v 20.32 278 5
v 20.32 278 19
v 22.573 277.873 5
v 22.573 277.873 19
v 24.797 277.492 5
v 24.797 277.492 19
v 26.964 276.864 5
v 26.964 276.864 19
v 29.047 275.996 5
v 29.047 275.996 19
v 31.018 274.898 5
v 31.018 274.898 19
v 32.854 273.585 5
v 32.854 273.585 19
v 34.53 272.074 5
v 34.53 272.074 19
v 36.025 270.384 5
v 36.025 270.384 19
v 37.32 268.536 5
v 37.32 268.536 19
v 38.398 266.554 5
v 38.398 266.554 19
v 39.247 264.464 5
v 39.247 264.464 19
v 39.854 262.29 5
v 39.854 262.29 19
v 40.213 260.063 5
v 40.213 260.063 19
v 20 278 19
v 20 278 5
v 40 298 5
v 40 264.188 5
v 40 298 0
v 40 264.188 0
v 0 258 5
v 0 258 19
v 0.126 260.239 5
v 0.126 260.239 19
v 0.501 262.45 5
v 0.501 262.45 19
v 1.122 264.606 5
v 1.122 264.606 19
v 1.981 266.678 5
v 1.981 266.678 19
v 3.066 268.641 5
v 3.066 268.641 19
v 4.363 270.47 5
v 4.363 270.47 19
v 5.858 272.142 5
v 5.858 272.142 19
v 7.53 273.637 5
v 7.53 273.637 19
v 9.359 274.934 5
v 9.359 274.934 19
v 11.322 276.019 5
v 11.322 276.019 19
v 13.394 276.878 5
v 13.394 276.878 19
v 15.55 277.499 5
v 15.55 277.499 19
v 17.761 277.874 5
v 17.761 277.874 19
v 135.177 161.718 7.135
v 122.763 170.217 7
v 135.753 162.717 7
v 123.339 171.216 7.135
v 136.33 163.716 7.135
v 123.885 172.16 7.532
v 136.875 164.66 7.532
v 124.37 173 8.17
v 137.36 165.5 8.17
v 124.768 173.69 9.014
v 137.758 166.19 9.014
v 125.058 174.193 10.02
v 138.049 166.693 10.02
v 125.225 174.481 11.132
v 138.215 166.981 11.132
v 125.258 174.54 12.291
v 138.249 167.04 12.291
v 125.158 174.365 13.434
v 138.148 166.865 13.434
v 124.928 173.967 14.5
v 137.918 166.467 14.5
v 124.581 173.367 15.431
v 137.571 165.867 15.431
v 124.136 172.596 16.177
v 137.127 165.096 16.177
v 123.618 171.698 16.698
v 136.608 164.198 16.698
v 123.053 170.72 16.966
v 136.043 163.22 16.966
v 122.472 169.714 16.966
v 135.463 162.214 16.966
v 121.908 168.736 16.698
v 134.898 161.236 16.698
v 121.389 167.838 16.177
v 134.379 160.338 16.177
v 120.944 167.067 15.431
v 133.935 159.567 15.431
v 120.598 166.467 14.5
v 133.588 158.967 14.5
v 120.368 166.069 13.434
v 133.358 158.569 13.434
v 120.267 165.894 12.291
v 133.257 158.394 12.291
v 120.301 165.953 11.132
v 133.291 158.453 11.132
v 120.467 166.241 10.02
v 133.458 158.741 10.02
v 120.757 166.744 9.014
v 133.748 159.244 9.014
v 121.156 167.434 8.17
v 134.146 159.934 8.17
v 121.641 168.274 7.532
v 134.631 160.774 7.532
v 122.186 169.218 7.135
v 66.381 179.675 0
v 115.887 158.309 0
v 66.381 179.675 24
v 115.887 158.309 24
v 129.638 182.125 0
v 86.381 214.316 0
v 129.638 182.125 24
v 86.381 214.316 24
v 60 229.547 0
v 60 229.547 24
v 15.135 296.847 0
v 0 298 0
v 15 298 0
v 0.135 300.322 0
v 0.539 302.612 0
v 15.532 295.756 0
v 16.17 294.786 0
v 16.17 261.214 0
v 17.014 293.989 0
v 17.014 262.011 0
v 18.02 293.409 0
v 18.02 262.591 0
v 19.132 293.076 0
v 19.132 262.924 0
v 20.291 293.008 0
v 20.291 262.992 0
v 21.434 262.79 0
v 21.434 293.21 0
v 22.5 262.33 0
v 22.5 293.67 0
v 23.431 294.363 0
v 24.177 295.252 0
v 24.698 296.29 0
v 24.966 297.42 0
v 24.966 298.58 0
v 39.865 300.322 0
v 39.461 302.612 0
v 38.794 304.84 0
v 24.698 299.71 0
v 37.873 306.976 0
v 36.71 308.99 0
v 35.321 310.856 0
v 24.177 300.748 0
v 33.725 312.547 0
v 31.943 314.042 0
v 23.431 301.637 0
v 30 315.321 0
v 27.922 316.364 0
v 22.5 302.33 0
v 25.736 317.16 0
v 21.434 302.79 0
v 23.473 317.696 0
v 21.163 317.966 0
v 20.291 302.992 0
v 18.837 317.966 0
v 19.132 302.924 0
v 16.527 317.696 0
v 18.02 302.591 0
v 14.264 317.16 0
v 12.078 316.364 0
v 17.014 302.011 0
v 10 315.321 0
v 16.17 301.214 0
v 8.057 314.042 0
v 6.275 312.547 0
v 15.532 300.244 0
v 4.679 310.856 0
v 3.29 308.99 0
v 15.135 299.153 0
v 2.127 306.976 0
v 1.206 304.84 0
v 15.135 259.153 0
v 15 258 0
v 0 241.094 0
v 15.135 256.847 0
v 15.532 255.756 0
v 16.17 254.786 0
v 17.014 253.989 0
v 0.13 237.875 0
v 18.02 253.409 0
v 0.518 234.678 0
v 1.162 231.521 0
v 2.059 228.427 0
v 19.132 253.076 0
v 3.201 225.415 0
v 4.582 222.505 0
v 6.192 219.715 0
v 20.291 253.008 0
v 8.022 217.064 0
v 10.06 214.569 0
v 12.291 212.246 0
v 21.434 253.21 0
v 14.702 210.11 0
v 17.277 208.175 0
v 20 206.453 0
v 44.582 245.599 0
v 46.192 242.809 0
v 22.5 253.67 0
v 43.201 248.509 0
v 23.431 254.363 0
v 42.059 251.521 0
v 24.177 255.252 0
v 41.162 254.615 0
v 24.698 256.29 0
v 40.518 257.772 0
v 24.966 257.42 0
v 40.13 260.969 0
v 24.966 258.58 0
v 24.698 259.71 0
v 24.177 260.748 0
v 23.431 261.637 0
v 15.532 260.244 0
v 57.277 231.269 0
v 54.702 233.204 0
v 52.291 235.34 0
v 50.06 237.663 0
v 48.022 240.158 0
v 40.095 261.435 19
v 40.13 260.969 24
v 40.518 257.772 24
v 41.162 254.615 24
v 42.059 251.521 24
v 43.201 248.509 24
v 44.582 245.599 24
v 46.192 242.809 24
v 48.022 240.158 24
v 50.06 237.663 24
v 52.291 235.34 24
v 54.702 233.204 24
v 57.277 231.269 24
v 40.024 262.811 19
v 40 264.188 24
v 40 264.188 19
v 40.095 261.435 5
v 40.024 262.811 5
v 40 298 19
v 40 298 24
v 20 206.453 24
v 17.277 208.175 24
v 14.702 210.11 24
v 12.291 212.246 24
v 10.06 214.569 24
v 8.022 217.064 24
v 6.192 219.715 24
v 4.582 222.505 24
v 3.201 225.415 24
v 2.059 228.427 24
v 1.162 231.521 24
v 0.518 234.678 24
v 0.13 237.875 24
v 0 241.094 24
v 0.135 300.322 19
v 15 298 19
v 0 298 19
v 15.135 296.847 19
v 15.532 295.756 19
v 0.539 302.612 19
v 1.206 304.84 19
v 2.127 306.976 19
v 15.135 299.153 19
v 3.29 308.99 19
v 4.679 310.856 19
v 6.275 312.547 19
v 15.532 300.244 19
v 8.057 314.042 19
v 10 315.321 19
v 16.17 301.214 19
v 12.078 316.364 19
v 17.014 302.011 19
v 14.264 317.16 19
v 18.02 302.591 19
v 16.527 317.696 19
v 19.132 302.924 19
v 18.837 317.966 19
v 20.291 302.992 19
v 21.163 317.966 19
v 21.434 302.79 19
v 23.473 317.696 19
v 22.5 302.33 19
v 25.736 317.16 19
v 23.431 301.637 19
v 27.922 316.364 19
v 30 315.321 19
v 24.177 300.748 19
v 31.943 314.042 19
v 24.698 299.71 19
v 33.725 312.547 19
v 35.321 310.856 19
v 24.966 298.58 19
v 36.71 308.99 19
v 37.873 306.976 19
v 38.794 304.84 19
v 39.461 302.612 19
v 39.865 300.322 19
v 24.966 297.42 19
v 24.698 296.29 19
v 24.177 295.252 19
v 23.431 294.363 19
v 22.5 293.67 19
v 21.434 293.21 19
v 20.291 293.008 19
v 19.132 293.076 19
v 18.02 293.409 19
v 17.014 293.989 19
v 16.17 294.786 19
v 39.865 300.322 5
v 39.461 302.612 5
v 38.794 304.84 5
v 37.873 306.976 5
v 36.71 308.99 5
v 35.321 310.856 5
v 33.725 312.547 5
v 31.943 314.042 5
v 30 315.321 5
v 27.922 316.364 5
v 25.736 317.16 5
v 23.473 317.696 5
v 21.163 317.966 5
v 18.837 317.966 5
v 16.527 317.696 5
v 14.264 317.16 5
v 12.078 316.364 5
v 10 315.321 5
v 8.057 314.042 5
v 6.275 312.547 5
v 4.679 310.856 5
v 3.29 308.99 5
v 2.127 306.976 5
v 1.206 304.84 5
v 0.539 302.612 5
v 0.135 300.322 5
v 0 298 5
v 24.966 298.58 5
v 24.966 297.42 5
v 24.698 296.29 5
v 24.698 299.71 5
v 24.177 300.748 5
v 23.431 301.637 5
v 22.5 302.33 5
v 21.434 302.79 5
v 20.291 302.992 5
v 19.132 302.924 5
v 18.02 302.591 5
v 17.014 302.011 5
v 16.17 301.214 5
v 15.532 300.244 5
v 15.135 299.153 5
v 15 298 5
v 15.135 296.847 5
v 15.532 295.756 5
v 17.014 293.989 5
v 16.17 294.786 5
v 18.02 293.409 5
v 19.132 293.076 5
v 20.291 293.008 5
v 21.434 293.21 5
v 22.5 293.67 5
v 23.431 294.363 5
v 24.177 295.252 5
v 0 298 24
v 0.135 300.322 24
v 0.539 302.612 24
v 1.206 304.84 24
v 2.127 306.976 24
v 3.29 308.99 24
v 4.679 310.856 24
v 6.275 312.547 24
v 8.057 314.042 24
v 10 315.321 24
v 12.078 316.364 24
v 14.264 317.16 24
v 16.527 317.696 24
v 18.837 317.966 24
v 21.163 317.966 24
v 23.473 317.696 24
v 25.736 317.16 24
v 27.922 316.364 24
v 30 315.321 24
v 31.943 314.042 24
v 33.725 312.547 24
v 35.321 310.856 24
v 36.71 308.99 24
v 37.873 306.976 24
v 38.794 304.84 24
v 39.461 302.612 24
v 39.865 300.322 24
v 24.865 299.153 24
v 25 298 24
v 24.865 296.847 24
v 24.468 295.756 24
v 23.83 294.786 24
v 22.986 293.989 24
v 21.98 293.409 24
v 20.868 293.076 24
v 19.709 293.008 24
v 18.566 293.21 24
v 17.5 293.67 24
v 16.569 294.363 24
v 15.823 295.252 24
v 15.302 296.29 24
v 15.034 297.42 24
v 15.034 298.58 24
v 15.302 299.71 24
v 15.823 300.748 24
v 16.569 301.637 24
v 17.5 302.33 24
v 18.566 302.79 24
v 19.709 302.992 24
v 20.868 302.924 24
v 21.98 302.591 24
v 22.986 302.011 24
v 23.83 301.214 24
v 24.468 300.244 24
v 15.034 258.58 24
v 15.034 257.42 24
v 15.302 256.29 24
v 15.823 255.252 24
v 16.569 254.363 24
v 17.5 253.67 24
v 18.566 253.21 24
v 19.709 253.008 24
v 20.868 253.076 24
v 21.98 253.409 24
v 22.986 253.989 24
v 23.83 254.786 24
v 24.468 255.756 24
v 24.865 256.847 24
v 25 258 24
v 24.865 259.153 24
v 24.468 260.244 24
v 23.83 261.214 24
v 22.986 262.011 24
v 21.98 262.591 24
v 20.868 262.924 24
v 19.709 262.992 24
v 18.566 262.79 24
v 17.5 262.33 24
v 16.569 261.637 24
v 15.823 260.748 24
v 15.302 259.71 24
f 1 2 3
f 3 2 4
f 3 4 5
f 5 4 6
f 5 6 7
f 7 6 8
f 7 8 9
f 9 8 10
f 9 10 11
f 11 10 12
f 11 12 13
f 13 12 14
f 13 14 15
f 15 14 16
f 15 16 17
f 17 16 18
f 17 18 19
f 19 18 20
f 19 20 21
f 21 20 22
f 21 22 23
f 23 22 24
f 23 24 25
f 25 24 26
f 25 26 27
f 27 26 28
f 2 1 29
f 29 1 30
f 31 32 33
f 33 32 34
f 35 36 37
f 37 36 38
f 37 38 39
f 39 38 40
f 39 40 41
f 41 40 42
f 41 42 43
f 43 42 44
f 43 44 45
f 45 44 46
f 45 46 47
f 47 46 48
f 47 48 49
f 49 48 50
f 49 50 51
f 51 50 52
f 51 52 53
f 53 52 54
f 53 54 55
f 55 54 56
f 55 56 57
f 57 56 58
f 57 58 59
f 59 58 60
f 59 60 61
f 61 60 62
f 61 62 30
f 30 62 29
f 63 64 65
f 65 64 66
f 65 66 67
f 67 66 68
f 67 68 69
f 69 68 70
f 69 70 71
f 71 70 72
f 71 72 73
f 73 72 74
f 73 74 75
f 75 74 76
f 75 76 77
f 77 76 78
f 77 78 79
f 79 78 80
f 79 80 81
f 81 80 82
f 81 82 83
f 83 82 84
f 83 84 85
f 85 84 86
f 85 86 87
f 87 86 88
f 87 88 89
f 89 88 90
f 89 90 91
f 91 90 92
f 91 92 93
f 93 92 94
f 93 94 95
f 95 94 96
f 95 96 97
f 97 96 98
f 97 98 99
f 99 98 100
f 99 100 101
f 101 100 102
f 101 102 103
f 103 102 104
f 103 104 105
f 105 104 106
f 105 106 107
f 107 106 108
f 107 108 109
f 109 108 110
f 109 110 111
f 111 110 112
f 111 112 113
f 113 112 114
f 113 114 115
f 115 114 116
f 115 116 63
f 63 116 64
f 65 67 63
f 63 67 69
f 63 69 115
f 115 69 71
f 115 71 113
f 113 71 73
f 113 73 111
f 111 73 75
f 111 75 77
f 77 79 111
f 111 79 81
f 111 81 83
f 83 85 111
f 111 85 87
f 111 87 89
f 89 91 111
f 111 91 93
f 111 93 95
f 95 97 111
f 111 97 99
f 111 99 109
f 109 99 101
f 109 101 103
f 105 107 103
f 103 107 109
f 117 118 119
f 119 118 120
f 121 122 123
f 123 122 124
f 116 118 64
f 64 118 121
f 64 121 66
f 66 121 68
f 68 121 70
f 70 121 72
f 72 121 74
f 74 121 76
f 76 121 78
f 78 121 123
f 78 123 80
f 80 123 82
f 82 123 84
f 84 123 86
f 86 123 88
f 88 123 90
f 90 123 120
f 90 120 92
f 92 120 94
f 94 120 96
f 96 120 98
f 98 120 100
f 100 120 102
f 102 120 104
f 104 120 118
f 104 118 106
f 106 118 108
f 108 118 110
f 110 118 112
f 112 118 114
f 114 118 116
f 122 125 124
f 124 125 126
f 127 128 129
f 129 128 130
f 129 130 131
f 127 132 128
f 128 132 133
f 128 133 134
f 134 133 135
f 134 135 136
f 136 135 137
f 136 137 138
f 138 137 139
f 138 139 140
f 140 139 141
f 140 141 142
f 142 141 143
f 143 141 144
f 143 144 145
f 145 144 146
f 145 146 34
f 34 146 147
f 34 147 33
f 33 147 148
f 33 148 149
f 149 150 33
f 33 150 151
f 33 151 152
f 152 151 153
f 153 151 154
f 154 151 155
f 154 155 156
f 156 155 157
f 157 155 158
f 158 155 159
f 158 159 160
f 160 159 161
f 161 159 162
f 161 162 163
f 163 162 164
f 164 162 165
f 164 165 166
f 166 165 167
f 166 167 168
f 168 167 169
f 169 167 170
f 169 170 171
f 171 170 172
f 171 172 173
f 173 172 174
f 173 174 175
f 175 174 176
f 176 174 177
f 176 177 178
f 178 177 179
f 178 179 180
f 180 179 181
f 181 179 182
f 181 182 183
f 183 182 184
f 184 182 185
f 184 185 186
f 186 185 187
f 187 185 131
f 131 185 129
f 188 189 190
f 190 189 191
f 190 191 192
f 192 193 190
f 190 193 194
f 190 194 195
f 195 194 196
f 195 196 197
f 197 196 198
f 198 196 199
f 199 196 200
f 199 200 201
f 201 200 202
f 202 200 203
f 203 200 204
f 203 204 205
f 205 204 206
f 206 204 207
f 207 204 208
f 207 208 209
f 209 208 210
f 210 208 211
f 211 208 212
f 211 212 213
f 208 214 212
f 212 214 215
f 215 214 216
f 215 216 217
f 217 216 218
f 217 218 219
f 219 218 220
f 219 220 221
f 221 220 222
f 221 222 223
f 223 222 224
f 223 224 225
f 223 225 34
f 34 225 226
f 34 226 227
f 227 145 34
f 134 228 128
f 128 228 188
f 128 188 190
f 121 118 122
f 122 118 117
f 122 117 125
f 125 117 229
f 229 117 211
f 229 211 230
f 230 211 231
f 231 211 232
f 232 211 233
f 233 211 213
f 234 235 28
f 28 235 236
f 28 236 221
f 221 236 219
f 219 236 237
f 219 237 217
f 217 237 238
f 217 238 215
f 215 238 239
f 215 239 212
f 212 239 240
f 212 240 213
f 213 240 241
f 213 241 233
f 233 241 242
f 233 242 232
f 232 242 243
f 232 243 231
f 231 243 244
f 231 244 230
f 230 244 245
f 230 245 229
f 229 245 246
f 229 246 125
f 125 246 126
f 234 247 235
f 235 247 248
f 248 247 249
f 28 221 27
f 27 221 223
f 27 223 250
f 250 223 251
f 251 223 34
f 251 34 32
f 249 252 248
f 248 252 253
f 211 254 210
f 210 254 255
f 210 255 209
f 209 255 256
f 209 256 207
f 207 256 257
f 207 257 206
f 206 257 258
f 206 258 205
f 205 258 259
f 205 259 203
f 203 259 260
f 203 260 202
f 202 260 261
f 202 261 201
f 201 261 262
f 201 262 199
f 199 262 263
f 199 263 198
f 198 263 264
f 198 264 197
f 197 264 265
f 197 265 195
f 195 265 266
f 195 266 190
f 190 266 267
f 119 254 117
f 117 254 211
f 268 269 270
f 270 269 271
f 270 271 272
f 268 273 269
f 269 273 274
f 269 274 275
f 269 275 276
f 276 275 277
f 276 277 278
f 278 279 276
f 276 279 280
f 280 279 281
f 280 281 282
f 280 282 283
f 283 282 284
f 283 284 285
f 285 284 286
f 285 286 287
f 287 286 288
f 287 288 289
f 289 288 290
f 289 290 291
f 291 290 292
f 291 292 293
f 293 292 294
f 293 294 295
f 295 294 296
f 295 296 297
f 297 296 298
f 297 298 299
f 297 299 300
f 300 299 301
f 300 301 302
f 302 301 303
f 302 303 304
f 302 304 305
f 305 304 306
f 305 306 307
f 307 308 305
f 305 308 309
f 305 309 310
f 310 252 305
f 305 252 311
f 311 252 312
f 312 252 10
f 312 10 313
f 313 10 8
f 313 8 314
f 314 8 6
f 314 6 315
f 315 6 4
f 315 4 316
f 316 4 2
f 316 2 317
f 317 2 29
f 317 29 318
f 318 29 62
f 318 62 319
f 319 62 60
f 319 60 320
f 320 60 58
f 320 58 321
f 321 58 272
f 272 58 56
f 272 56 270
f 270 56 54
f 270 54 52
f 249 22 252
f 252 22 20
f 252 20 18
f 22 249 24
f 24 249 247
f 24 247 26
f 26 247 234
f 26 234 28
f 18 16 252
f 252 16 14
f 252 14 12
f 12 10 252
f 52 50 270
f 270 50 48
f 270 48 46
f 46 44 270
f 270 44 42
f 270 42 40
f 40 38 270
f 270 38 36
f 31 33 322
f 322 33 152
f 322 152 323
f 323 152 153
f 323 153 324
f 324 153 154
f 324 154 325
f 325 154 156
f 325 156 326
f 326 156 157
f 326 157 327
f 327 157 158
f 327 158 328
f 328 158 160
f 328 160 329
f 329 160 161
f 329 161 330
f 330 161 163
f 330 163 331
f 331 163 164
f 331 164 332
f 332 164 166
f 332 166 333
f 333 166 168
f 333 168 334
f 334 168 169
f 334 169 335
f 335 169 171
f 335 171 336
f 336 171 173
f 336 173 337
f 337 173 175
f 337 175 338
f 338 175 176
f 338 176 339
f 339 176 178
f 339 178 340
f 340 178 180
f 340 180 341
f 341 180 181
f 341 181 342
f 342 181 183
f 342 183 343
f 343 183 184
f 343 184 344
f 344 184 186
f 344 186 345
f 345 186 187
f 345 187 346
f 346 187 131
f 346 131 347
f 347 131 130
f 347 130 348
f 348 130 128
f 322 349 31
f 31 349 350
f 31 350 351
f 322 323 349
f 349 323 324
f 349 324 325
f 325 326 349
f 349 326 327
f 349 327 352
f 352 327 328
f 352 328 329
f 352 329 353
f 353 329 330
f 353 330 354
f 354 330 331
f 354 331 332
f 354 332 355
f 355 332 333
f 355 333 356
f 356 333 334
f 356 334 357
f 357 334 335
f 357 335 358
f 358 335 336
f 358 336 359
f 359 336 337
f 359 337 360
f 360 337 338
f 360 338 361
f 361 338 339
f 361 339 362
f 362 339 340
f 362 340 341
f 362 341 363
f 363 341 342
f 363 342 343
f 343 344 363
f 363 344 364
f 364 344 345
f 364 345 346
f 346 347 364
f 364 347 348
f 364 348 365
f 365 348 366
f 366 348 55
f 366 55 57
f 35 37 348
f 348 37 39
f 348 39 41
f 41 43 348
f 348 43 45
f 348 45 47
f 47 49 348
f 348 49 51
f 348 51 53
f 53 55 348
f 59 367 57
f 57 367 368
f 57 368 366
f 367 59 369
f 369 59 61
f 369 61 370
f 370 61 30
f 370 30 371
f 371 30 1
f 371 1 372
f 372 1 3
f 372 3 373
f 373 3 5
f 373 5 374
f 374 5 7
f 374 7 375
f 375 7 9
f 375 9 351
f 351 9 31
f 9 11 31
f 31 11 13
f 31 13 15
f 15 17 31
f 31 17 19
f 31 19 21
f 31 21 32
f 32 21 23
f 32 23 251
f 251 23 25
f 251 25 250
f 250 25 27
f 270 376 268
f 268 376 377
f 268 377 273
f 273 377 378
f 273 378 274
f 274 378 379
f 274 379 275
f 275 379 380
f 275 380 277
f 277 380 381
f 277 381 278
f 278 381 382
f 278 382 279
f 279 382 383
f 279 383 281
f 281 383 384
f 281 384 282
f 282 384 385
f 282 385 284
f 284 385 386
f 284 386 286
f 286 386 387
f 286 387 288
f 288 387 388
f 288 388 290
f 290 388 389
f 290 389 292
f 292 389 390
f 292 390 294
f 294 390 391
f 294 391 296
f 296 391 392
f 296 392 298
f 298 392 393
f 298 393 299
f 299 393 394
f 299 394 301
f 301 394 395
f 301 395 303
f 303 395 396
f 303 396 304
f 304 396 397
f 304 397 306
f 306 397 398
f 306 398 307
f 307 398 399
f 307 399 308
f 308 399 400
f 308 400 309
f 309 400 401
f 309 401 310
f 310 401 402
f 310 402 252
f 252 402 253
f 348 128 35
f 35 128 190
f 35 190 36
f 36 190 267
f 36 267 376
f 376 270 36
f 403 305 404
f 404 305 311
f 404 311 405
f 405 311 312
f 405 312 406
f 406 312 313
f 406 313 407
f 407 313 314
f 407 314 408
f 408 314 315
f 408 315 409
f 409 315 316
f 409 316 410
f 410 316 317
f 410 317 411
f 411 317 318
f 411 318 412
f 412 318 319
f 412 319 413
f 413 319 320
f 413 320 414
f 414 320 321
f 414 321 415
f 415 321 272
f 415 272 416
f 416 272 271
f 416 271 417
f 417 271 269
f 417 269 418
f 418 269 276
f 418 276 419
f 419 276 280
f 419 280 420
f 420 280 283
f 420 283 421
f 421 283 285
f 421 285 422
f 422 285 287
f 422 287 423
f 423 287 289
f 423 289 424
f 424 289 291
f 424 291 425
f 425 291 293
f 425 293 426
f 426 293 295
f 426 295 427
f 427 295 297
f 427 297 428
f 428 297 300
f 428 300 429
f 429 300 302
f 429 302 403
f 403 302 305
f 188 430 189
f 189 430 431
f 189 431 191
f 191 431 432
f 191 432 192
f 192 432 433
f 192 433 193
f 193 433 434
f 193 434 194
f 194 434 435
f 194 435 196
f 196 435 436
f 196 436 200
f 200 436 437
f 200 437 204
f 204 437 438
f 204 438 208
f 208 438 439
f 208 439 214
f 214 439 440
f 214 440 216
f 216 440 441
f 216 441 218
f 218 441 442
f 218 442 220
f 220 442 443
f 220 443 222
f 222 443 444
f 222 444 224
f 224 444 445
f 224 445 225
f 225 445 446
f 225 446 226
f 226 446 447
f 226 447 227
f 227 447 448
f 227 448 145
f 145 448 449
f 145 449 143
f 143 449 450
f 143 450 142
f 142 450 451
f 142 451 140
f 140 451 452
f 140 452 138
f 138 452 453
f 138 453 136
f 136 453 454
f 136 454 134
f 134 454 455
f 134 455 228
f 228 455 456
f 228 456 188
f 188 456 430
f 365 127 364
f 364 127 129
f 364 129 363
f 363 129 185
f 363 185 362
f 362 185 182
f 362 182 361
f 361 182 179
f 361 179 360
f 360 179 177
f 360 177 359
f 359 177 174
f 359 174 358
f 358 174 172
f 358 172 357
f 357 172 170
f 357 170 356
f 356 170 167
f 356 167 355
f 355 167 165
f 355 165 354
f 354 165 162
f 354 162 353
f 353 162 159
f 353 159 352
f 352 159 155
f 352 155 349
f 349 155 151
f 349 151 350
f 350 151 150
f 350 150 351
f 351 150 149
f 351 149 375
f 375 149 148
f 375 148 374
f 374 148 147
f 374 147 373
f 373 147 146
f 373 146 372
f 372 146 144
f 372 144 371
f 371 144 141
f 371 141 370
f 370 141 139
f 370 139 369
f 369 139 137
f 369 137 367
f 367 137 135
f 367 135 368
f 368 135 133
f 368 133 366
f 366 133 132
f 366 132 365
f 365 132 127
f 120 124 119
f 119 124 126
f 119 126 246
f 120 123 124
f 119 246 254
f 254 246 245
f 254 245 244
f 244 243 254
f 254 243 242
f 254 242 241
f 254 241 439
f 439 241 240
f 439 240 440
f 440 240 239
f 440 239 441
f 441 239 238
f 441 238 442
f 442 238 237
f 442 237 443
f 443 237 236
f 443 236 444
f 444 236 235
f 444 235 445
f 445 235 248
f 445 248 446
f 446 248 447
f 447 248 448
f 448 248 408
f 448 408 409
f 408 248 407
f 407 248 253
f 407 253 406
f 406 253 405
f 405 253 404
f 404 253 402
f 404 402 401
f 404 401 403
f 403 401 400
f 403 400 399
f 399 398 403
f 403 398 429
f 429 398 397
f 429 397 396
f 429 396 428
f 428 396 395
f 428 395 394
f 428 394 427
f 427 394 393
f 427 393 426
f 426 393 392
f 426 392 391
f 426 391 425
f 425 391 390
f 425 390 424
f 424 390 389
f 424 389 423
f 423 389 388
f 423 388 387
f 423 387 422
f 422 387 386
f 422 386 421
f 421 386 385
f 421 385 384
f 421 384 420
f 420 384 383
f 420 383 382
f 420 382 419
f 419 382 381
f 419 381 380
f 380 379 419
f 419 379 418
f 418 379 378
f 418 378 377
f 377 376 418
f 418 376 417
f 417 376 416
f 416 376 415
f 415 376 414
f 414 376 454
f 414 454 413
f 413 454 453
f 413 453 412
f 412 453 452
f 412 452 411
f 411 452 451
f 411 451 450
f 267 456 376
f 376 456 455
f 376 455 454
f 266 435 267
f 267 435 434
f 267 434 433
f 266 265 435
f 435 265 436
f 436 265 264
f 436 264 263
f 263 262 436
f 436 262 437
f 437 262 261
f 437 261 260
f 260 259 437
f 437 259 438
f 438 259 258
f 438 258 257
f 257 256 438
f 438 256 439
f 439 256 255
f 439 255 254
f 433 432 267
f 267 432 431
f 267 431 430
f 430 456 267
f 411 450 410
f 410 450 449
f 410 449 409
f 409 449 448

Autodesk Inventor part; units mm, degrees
ref_plane "YZ Plane" through (0, 0, 0) normal (1, 0, 0) x (0, 1, 0)
ref_plane "XZ Plane" through (0, 0, 0) normal (0, 1, 0) x (-1, 0, 0)
ref_plane "XY Plane" through (0, 0, 0) normal (0, 0, 1) x (1, 0, 0)
sketch "スケッチ1" plane through (0, 0, 0) normal (0, 0, 1) x (1, 0, 0)
  line L0 (0, 0) -> (40, 0)
  line L1 (40, 0) -> (40, 318)
  line L2 (40, 318) -> (0, 318)
  line L3 (0, 318) -> (0, 0)
  line L4 (0, 218) -> (112.7627, 152.8964)
  line L5 (112.7627, 152.8964) -> (132.7627, 187.5375)
  line L6 (132.7627, 187.5375) -> (40, 241.094)
  point P0 (40, 218)
  point P1 (40, 194.906)
  point P2 (20, 318)
  point P3 (122.7627, 170.2169)
  dimension "d0" = 40
  dimension "d1" = 318
  dimension "d69" = 40
  dimension "d70" = 60
  dimension "d91" = 20
  dimension "d92" = 100
  dimension "d93" = 180
extrude "押し出し1" add sketch "スケッチ1" along normal blind 24 contours L3 L2 L1 L4 | L1 L6 L5 L4
sketch "スケッチ6" plane through (0, 0, 24) normal (0, 0, 1) x (1, 0, 0)
  circle A0 centre (20, 258) radius 5
  line L0 (40, 318) -> (0, 318) projected
  line L1 (40, 241.094) -> (40, 318) projected
  circle A1 centre (20, 20) radius 1.2295
  circle A2 centre (20, 10) radius 1.2295
  line L2 (0, 0) -> (40, 0) projected
  circle A3 centre (20, 298) radius 5
  point P0 (20, 318)
  point P1 (40, 190.8114)
  point P2 (30, 0)
  dimension "d42" = 10
  dimension "d44" = 20
  dimension "d45" = 2.459
  dimension "d46" = 2.459
  dimension "d47" = 10
  dimension "d48" = 10
  dimension "d49" = 20
  dimension "d50" = 20
  dimension "d53" = 10
  dimension "d54" = 20
  dimension "d55" = 40
  dimension "d56" = 20
extrude "押し出し4" cut sketch "スケッチ6" against normal through all
sketch "スケッチ8" plane through (0, 0, 0) normal (-1, 0, 0) x (0, 0, 1)
  line L0 (0, 318) -> (24, 318) projected
  line L1 (5, 318) -> (19, 318)
  line L2 (19, 318) -> (19, 278)
  line L3 (19, 278) -> (5, 278)
  line L4 (5, 278) -> (5, 318)
  line L5 (0, 318) -> (0, 0) projected
  dimension "d57" = 5
  dimension "d58" = 14
  dimension "d59" = 40
extrude "押し出し5" cut sketch "スケッチ8" against normal through all
fillet "フィレット1" radius 20 4 edges at (40, 318, 21.5) (40, 318, 2.5) (0, 318, 2.5) (0, 318, 21.5)
fillet "フィレット2" radius 40 2 edges at (0, 218, 12) (40, 241.094, 12)
sketch "スケッチ9" plane through (0, 0, 24) normal (0, 0, 1) x (1, 0, 0)
  line L0 (20, 206.453) -> (112.7627, 152.8964) projected
  line L1 (132.7627, 187.5375) -> (60, 229.547) projected
  line L2 (112.7627, 152.8964) -> (132.7627, 187.5375) projected
  line L3 (132.7627, 187.5375) -> (112.7627, 152.8964)
  line L4 (66.3813, 179.6747) -> (112.7627, 152.8964)
  line L5 (132.7627, 187.5375) -> (166.773, 167.9016)
  line L6 (115.1204, 126.9801) -> (133.5174, 158.8446)
  line L7 (141.7531, 173.1092) -> (128.7627, 180.6092)
  line L8 (112.7627, 152.8964) -> (20, 206.453)
  line L9 (132.7627, 187.5375) -> (60, 229.547)
  line L10 (115.1204, 126.9801) -> (125.7531, 145.3964)
  line L11 (133.5174, 158.8446) -> (145.7531, 180.0375)
  line L12 (116.7627, 159.8246) -> (129.7531, 152.3246)
  line L13 (66.3813, 179.6747) -> (129.7531, 152.3246)
  line L14 (66.3813, 179.6747) -> (86.3813, 214.3157)
  line L15 (86.3813, 214.3157) -> (141.7531, 173.1092)
  point P0 (0, 0)
  point P1 (254.4532, 80.329)
  point P2 (128.7627, 180.6092)
  point P3 (123.2579, 156.0746)
  point P4 (86.3813, 214.3157)
  point P5 (40, 194.906)
  point P6 (115.8875, 158.3088)
  point P7 (129.6379, 182.1251)
  dimension "d80" = 24
  dimension "d81" = 40
  dimension "d83" = 15
  dimension "d84" = 8
  dimension "d90" = 24
extrude "押し出し6" cut sketch "スケッチ9" against normal through all contours L13 L2 L0 | L1 L2 L15
sketch "スケッチ11" plane through (104.9897, 139.4332, 24) normal (0.8660254, -0.5, 0) x (0, 0, -1)
  line L0 (0, 21.7957) -> (0, 49.2964) projected
  line L1 (24, 21.7957) -> (24, 49.2964) projected
  line L2 (0, 24) -> (24, 24)
  line L3 (24, 24) -> (24, 0)
  line L4 (24, 0) -> (0, 0)
  line L5 (0, 0) -> (0, 24)
  line L6 (17, 17) -> (7, 17)
  line L7 (7, 17) -> (7, 7)
  line L8 (7, 7) -> (17, 7)
  line L9 (17, 7) -> (17, 17)
  line L10 (0, 35.546) -> (24, 35.546) projected
  circle A0 centre (12, 35.546) radius 5
  point P0 (24, -173.2475)
  point P1 (24, 24)
  point P2 (0, 15.546)
  point P3 (0, 55.546)
  point P4 (24, 15.546)
  point P5 (24, 55.546)
  dimension "d85" = 10
  dimension "d88" = 10
extrude "押し出し7" add sketch "スケッチ11" along normal blind 15 contours A0 L10 | L10 A0
fillet "フィレット4" radius 20 2 edges at (0, 278, 12) (40, 278, 12)
equation "\"d45\" = d46"
equation "\"d48\" = d47"
equation "\"d50\" = d49"
properties part number "l_r_k2a__legparts_06(six)"
